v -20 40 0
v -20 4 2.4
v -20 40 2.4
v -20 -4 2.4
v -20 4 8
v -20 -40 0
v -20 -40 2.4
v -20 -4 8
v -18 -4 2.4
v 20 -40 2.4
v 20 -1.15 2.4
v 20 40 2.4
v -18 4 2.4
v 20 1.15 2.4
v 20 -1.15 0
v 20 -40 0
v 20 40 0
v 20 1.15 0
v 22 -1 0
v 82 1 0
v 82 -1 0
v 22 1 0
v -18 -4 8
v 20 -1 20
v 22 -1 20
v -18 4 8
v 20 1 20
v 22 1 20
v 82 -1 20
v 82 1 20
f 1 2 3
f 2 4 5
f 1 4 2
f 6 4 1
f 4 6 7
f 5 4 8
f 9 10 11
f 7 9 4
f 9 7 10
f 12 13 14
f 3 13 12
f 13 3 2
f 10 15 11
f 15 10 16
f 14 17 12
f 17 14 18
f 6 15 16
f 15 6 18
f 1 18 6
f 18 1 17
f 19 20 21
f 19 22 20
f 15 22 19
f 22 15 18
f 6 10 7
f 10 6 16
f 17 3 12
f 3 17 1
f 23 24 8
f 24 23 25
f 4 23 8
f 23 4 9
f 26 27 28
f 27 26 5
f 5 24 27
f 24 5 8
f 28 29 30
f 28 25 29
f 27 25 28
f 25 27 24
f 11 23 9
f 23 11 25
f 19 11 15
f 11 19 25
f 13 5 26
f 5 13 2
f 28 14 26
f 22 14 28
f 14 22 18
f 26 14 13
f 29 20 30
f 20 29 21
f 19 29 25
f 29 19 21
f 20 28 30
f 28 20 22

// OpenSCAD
translate([-20, -40, 0])cube([40,80,2.4]);
hull(){
    translate([-20, -4, 0])cube([2,8,8]);
    translate([20, -1, 0])cube([2,2,20]);
}
hull(){
    translate([20, -1, 0])cube([2,2,20]);
    translate([80, -1, 0])cube([2,2,20]);
}
